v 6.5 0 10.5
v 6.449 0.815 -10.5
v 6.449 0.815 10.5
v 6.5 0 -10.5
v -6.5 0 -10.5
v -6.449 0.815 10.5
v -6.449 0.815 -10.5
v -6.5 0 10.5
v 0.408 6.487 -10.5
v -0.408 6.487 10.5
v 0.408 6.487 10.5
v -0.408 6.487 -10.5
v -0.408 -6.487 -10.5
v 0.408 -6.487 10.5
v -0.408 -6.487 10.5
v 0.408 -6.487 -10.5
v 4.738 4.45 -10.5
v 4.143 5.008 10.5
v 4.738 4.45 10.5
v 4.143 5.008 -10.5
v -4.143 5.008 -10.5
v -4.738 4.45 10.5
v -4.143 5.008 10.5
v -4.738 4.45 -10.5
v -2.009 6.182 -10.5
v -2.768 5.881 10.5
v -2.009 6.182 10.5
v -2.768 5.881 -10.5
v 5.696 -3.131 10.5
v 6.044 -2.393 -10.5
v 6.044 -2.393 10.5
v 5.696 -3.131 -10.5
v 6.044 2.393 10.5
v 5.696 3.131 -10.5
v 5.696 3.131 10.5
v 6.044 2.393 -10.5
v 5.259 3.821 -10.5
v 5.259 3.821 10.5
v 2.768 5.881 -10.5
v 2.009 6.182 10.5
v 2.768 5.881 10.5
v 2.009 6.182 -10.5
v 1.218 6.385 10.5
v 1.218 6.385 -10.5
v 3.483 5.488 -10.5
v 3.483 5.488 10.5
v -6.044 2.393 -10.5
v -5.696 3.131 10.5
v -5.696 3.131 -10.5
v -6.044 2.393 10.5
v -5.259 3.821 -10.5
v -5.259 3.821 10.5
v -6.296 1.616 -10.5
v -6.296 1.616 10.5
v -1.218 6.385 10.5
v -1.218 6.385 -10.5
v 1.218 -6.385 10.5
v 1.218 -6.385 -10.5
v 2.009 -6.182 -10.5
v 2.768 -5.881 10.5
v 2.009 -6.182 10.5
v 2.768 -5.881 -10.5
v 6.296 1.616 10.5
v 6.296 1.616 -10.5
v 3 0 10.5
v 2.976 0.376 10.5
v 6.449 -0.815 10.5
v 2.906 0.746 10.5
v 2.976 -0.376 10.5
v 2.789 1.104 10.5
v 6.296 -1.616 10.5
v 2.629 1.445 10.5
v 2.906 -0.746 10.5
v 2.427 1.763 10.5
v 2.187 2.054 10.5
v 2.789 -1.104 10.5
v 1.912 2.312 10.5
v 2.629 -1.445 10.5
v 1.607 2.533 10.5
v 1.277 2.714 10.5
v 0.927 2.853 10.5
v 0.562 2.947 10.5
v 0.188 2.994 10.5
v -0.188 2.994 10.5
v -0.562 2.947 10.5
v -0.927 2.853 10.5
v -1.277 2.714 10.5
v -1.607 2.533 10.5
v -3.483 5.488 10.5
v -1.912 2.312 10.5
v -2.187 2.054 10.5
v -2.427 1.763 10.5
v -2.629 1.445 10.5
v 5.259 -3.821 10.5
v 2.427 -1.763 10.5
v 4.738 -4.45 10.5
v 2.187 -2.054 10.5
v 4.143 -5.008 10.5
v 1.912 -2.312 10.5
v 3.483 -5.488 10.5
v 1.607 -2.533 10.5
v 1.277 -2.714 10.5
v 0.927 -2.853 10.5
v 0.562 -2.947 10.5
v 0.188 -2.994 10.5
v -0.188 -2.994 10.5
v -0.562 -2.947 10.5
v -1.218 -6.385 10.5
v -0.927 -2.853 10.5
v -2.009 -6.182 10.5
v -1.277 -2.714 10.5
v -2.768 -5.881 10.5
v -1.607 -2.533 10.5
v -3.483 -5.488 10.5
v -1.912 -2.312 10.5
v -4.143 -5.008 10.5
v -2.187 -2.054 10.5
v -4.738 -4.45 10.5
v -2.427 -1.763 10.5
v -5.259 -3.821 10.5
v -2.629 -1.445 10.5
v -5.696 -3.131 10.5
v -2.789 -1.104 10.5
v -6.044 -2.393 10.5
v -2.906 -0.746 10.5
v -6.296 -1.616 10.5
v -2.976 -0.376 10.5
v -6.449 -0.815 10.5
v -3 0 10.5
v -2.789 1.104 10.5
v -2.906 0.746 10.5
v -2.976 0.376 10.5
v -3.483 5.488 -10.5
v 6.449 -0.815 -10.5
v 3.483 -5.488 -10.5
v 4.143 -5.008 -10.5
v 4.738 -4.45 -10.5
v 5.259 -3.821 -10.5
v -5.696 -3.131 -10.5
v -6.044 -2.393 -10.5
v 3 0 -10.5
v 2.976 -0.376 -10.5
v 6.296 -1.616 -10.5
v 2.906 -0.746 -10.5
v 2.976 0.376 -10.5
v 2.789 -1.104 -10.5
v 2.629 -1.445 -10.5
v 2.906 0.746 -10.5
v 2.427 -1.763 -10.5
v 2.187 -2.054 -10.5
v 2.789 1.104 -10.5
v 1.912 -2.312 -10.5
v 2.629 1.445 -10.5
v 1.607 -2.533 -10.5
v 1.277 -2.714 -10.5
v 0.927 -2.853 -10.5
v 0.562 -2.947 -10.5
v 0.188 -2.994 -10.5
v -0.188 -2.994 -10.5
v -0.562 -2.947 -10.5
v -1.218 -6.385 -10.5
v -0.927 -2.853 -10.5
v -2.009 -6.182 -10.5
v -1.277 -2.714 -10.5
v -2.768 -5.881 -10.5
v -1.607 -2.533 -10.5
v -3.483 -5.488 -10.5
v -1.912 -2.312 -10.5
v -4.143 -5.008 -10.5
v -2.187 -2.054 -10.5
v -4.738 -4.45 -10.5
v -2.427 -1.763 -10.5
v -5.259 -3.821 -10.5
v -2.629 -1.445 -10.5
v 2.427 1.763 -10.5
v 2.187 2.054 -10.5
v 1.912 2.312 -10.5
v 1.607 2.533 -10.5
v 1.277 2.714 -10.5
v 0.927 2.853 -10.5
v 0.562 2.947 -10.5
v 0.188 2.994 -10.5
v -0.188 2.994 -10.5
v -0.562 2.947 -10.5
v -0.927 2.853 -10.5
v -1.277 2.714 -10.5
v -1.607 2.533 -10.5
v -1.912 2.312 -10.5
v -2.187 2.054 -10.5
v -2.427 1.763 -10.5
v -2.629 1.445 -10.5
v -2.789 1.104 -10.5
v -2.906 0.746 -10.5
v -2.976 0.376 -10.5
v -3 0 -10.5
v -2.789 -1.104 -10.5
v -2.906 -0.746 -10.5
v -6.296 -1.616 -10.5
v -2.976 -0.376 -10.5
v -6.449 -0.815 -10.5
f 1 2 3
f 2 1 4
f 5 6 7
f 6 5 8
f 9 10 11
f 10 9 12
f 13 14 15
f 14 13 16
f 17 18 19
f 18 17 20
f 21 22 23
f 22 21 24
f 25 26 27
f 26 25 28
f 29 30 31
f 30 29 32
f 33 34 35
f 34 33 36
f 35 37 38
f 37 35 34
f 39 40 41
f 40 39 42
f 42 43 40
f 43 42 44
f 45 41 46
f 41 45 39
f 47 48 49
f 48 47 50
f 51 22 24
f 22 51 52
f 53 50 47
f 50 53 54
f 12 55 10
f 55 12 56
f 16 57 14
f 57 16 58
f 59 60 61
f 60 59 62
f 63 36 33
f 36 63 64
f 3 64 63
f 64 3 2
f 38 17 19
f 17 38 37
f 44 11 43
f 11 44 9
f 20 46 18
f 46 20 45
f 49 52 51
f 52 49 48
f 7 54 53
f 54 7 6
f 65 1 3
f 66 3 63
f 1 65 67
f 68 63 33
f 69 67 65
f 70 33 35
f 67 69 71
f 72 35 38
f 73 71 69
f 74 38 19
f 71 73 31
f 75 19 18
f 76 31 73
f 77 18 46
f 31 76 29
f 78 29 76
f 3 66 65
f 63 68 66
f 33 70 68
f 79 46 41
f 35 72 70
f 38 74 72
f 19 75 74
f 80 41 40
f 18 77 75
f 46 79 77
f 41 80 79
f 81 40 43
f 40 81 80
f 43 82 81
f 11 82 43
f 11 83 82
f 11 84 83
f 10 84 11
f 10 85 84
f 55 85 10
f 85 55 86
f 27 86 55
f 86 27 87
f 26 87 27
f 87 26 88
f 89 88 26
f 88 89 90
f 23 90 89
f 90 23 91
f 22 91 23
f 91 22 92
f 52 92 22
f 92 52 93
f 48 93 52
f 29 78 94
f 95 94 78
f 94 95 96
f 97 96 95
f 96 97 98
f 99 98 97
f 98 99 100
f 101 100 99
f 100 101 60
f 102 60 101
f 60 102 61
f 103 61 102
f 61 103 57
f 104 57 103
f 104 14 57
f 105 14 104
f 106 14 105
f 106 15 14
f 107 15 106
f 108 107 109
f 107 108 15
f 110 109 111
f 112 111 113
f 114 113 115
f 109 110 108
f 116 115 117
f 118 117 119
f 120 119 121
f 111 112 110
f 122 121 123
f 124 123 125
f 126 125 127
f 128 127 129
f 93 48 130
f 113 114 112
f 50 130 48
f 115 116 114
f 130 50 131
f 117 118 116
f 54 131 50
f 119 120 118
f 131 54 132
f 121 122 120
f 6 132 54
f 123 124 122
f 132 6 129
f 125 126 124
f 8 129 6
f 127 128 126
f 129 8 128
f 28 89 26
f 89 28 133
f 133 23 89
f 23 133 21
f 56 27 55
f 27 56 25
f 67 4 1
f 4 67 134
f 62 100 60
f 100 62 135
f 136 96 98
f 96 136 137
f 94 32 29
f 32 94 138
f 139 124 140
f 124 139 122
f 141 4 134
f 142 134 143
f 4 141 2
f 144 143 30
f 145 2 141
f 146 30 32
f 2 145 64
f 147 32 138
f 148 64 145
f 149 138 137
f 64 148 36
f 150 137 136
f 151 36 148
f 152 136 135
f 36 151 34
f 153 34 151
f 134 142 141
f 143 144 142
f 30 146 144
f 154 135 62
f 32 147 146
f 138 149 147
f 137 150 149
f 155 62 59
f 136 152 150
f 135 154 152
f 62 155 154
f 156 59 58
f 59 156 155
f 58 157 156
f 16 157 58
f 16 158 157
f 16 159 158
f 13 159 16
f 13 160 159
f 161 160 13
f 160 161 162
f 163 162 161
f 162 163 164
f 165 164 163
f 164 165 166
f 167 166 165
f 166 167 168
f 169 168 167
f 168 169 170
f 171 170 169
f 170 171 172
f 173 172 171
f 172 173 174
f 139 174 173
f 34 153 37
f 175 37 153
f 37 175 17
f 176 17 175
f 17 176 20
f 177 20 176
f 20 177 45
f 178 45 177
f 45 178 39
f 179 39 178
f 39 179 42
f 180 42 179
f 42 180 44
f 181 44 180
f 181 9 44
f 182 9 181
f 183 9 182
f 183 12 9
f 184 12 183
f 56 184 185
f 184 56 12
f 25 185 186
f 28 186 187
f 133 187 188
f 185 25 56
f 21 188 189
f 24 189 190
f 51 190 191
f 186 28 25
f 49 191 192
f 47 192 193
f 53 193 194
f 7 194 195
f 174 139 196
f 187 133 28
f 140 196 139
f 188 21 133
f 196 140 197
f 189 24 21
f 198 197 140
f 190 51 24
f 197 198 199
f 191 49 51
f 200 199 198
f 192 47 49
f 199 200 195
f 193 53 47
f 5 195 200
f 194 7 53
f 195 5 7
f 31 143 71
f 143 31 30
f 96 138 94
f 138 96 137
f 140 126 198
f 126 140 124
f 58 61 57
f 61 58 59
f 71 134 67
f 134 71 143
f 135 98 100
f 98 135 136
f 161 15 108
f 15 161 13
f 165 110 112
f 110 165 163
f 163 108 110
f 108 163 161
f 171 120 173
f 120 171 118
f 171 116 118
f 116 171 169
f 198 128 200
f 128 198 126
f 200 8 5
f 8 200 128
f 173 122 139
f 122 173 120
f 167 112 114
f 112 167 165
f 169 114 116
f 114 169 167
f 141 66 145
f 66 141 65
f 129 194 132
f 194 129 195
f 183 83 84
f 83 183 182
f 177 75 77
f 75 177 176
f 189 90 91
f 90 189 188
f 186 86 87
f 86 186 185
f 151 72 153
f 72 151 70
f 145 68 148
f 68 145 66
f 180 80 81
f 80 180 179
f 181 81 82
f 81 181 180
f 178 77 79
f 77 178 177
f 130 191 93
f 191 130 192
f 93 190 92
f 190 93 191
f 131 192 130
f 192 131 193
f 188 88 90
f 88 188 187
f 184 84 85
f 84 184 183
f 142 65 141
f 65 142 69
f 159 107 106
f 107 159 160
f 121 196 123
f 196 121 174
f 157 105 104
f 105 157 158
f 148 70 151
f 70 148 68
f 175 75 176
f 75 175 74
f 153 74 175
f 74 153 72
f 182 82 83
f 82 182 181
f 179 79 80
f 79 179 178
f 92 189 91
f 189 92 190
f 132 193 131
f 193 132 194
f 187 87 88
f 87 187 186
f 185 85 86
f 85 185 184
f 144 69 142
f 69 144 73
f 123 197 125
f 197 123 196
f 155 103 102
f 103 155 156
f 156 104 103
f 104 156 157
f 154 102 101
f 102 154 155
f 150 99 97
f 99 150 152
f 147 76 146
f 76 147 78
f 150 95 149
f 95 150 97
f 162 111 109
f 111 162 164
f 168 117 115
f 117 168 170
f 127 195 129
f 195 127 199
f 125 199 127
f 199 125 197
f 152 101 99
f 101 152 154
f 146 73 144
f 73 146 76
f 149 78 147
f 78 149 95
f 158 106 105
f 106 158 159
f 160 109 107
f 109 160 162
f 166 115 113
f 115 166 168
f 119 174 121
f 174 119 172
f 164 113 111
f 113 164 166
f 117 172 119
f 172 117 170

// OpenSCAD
$fn = 50;


difference() {
	union() {
		translate(v = [0, 0, -10.5000000000]) {
			cylinder(h = 21, r = 6.5000000000);
		}
	}
	union() {
		translate(v = [0, 0, -100.0000000000]) {
			cylinder(h = 200, r = 3);
		}
	}
}
